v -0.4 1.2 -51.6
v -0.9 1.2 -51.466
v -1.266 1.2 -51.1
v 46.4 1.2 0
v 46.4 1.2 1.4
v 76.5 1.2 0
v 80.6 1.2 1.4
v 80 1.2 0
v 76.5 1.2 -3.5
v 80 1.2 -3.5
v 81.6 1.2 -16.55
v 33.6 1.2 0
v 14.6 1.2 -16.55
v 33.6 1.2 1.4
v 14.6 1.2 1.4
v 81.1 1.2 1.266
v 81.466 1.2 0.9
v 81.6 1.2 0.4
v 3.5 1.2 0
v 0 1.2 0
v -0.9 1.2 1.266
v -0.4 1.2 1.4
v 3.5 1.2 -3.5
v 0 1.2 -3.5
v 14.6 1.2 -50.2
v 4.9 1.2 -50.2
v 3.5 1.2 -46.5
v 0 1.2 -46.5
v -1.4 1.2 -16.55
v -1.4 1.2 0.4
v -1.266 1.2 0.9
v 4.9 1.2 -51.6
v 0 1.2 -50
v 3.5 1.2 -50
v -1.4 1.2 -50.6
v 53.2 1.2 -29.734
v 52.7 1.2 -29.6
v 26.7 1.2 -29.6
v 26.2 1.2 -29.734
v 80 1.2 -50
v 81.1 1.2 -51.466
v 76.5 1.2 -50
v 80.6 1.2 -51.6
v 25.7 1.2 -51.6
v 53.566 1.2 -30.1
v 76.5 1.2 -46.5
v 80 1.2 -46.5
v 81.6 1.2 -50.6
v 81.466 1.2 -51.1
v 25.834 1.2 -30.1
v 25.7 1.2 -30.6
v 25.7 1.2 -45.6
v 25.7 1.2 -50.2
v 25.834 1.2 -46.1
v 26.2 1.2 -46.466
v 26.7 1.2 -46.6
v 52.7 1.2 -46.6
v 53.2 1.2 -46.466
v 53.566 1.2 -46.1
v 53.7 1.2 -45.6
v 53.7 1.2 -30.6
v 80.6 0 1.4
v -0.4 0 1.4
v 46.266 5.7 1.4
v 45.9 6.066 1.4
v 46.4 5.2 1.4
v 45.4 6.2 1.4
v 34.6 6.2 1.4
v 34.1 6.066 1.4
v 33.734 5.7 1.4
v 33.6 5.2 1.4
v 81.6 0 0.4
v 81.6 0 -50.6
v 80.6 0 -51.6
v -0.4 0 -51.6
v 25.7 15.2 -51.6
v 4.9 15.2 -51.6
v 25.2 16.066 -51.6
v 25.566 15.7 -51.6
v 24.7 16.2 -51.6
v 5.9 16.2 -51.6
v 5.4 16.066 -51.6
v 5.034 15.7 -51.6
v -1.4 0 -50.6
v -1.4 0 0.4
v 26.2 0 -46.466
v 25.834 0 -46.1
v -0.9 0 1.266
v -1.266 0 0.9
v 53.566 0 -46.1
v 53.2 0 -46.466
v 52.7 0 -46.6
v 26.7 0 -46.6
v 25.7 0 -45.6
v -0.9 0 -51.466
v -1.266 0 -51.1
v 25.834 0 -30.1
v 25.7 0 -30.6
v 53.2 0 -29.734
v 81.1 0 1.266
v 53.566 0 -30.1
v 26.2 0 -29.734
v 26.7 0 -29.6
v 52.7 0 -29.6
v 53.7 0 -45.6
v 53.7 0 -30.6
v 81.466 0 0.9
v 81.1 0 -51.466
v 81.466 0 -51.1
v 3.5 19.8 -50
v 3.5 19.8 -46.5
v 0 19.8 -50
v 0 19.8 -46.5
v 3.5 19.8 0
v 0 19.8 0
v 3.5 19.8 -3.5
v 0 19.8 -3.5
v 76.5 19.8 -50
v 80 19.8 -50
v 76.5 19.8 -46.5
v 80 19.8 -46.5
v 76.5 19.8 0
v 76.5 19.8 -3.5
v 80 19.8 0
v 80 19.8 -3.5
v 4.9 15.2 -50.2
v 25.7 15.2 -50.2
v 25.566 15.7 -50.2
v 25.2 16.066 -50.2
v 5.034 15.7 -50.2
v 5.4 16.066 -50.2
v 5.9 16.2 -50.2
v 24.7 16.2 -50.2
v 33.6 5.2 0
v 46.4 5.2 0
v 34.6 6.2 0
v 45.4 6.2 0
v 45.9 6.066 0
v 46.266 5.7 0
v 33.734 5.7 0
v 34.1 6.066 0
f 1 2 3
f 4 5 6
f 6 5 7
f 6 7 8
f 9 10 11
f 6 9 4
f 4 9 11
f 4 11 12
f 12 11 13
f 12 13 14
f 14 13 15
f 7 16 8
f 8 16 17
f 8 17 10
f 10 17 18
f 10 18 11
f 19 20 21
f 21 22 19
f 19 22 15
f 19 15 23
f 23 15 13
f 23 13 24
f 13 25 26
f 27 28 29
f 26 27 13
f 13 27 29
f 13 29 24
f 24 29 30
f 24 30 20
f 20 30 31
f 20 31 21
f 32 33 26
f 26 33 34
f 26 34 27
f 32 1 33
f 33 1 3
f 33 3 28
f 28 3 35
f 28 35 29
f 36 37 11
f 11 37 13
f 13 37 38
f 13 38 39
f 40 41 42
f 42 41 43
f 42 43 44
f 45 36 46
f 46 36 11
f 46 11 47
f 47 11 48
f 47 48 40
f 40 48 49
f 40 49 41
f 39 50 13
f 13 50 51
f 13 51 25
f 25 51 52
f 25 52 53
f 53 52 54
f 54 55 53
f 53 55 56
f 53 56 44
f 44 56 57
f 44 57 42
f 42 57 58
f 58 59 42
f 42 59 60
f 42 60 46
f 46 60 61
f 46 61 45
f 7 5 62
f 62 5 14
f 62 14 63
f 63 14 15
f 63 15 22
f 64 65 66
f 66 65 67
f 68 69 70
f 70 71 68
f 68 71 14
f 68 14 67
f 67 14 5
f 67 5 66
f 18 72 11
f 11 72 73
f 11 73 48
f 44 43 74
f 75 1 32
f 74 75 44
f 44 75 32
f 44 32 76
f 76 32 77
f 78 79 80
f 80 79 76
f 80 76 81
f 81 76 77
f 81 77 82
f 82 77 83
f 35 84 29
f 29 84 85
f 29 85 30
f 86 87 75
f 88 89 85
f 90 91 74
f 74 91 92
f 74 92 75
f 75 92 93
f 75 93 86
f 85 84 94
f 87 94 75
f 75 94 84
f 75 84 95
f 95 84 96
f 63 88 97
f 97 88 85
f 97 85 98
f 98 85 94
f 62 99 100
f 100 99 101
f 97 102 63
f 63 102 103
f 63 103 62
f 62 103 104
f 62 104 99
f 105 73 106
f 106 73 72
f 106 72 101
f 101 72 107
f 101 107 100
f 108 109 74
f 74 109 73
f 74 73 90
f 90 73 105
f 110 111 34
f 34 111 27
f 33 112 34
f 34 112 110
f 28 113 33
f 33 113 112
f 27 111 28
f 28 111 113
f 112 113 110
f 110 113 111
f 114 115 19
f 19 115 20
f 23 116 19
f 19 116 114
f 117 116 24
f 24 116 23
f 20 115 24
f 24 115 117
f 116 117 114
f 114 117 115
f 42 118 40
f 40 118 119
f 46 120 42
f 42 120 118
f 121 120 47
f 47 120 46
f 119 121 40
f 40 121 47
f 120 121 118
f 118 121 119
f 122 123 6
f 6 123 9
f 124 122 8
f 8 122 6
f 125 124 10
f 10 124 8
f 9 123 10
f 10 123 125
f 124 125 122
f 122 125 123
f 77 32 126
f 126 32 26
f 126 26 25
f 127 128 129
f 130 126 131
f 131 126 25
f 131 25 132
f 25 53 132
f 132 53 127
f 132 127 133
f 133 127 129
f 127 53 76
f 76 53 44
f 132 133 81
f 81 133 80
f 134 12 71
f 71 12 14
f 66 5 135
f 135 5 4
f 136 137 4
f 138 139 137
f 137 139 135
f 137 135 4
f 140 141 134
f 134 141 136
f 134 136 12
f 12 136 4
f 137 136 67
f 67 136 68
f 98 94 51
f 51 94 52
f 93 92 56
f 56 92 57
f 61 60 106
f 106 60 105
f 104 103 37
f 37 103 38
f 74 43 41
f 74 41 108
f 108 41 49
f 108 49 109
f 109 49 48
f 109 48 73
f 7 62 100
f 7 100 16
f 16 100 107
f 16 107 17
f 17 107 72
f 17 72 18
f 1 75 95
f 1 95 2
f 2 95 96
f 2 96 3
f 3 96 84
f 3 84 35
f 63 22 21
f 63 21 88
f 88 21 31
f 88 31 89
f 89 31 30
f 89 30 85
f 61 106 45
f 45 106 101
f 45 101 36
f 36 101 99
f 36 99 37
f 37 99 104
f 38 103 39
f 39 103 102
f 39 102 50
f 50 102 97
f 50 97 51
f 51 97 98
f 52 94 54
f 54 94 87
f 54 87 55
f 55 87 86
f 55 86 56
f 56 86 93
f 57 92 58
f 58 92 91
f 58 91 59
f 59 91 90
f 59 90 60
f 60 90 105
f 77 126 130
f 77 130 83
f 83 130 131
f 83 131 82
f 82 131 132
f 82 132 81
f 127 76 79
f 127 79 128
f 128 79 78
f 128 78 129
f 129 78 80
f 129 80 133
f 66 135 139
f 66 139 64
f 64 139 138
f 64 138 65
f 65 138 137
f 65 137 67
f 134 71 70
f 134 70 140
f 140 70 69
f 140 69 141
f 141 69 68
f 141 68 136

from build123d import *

# Parameters (mm, degrees)
SKETCH_1_W          = 83
SKETCH_1_H          = 53
EXTRUDE_1_DEPTH     = 1.2
SKETCH_1_4_W        = 3.5
SKETCH_1_4_H        = 3.5
EXTRUDE_2_DEPTH     = 19.8
EXTRUDE_3_DEPTH     = 1.2
SKETCH_3_W          = 20.8
SKETCH_3_H          = 1.4
EXTRUDE_4_DEPTH     = 15
SKETCH_4_W          = 12.8
SKETCH_4_H          = 1.4
EXTRUDE_5_DEPTH     = 5
SKETCH_5_W          = 28
SKETCH_5_H          = 17
CUT_EXTRUDE_1_DEPTH = 5
FILLET_2_R          = 1
FILLET_3_R          = 1
FILLET_4_R          = 1


with BuildPart() as part:
    # 草图1 → 凸台-拉伸1 (new body)
    with BuildSketch(Plane(origin=(0, 0, 0), x_dir=(1, 0, 0), z_dir=(0, 1, 0))):
        with Locations((40.1, 25.1)):
            Rectangle(SKETCH_1_W, SKETCH_1_H)
        Polygon((3.5, 0), (0, 0), (0, 3.5), (0, 46.5), (0, 50), (3.5, 50), (76.5, 50), (80, 50), (80, 46.5), (80, 3.5), (80, 0), (76.5, 0), align=None, mode=Mode.SUBTRACT)
    extrude(amount=EXTRUDE_1_DEPTH)

    # 草图1<4> → 凸台-拉伸2 (add)
    with BuildSketch(Plane(origin=(0, 0, 0), x_dir=(1, 0, 0), z_dir=(0, 1, 0))):
        with Locations((1.75, 1.75)):
            Rectangle(SKETCH_1_4_W, SKETCH_1_4_H)
        with Locations((78.25, 1.75)):
            Rectangle(SKETCH_1_4_W, SKETCH_1_4_H)
        with Locations((1.75, 48.25)):
            Rectangle(SKETCH_1_4_W, SKETCH_1_4_H)
        with Locations((78.25, 48.25)):
            Rectangle(SKETCH_1_4_W, SKETCH_1_4_H)
    extrude(amount=EXTRUDE_2_DEPTH)

    # 草图1<5> → 凸台-拉伸3 (add)
    with BuildSketch(Plane(origin=(0, 0, 0), x_dir=(1, 0, 0), z_dir=(0, 1, 0))):
        Polygon((3.5, 3.5), (3.5, 0), (76.5, 0), (76.5, 3.5), (80, 3.5), (80, 46.5), (76.5, 46.5), (76.5, 50), (3.5, 50), (3.5, 46.5), (0, 46.5), (0, 3.5), align=None)
    extrude(amount=EXTRUDE_3_DEPTH)

    # 草图3 → 凸台-拉伸4 (add)
    with BuildSketch(Plane(origin=(0, 1.2, 0), x_dir=(1, 0, 0), z_dir=(0, 1, 0))):
        with Locations((15.3, 50.9)):
            Rectangle(SKETCH_3_W, SKETCH_3_H)
    extrude(amount=EXTRUDE_4_DEPTH)

    # 草图4 → 凸台-拉伸5 (add)
    with BuildSketch(Plane(origin=(0, 1.2, 0), x_dir=(1, 0, 0), z_dir=(0, 1, 0))):
        with Locations((40, -0.7)):
            Rectangle(SKETCH_4_W, SKETCH_4_H)
    extrude(amount=EXTRUDE_5_DEPTH)

    # 草图5 → 切除-拉伸1 (cut)
    with BuildSketch(Plane(origin=(0, 1.2, 0), x_dir=(1, 0, 0), z_dir=(0, 1, 0))):
        with Locations((39.7, 38.1)):
            Rectangle(SKETCH_5_W, SKETCH_5_H)
    extrude(amount=-CUT_EXTRUDE_1_DEPTH, mode=Mode.SUBTRACT)

    # 圆角2
    fillet_2_edges = [part.edges().sort_by_distance(p)[0] for p in [
        (81.6, 0.6, -51.6),
        (81.6, 0.6, 1.4),
        (-1.4, 0.6, -51.6),
        (-1.4, 0.6, 1.4),
        (53.7, 0.6, -29.6),
        (25.7, 0.6, -29.6),
        (25.7, 0.6, -46.6),
        (53.7, 0.6, -46.6),
    ]]
    fillet(fillet_2_edges, radius=FILLET_2_R)

    # 圆角3
    fillet_3_edges = [part.edges().sort_by_distance(p)[0] for p in [
        (4.9, 16.2, -50.9),
        (25.7, 16.2, -50.9),
    ]]
    fillet(fillet_3_edges, radius=FILLET_3_R)

    # 圆角4
    fillet_4_edges = [part.edges().sort_by_distance(p)[0] for p in [
        (46.4, 6.2, 0.7),
        (33.6, 6.2, 0.7),
    ]]
    fillet(fillet_4_edges, radius=FILLET_4_R)


solid = part.part
